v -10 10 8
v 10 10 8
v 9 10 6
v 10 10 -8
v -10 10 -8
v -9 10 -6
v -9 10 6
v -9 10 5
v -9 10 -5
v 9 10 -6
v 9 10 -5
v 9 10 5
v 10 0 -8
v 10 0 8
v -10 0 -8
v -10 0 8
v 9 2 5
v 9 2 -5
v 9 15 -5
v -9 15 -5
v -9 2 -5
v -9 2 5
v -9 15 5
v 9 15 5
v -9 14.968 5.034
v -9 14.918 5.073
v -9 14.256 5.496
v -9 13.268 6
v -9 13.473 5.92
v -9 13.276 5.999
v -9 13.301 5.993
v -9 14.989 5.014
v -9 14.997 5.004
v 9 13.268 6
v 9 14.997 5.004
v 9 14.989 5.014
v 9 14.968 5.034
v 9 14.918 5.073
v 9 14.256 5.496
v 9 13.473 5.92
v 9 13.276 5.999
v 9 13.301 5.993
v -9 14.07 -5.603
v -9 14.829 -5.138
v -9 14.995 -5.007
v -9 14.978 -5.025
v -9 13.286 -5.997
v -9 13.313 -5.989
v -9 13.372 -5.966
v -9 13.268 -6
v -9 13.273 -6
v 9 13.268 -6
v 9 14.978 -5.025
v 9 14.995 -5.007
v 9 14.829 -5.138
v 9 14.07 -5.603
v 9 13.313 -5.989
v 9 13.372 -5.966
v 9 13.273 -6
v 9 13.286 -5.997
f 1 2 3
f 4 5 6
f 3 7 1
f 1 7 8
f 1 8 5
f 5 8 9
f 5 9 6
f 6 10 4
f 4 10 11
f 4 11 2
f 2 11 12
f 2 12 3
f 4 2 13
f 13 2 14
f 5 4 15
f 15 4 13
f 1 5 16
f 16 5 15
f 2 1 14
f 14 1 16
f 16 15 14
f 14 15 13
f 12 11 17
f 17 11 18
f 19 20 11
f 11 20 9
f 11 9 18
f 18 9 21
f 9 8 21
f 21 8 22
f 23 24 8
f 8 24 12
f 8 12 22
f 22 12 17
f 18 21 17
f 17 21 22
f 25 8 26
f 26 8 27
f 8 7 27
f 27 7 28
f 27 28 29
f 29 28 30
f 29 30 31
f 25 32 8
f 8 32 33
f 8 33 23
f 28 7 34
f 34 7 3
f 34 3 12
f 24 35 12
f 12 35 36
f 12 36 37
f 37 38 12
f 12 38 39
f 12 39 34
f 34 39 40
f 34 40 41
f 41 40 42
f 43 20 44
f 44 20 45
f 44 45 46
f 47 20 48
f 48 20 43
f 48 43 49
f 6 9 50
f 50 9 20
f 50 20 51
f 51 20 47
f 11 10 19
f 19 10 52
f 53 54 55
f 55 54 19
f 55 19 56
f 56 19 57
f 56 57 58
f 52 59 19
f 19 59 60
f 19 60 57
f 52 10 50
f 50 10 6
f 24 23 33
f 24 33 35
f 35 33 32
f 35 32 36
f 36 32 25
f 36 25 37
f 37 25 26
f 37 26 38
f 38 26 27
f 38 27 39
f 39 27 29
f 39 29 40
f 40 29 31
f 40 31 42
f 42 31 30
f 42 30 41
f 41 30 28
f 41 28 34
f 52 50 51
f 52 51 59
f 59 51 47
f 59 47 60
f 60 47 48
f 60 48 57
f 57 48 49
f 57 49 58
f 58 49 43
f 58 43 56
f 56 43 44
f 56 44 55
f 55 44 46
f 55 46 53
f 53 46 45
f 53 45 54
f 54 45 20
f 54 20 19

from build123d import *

# Parameters (mm, degrees)
CROQUIS1_W              = 20
CROQUIS1_H              = 16
SALIENTE_EXTRUIR1_DEPTH = 2
CROQUIS2_W              = 20
CROQUIS2_H              = 16
CROQUIS2_W_2            = 18
CROQUIS2_H_2            = 10
SALIENTE_EXTRUIR2_DEPTH = 8
CROQUIS3_W              = 18
CROQUIS3_H              = 1
SALIENTE_EXTRUIR3_DEPTH = 5
REDONDEO1_START         = -9
REDONDEO1_DEPTH         = 18


with BuildPart() as part:
    # Croquis1 → Saliente-Extruir1 (new body)
    with BuildSketch(Plane(origin=(0, 0, 0), x_dir=(1, 0, 0), z_dir=(0, 1, 0))):
        Rectangle(CROQUIS1_W, CROQUIS1_H)
    extrude(amount=SALIENTE_EXTRUIR1_DEPTH)

    # Croquis2 → Saliente-Extruir2 (add)
    with BuildSketch(Plane(origin=(0, 2, 0), x_dir=(1, 0, 0), z_dir=(0, 1, 0))):
        Rectangle(CROQUIS2_W, CROQUIS2_H)
        Rectangle(CROQUIS2_W_2, CROQUIS2_H_2, mode=Mode.SUBTRACT)
    extrude(amount=SALIENTE_EXTRUIR2_DEPTH)

    # Croquis3 → Saliente-Extruir3 (add)
    with BuildSketch(Plane(origin=(0, 10, 0), x_dir=(1, 0, 0), z_dir=(0, 1, 0))):
        with Locations((0, -5.5)):
            Rectangle(CROQUIS3_W, CROQUIS3_H)
        with Locations((0, 5.5)):
            Rectangle(CROQUIS3_W, CROQUIS3_H)
    extrude(amount=SALIENTE_EXTRUIR3_DEPTH)

    # Redondeo1: read off the stored shape, not the designer's step
    # Redondeo1 outline → Redondeo1 (cut)
    with BuildSketch(Plane.YZ.offset(REDONDEO1_START)):
        with BuildLine():
            Line((15, 6), (13.267949192, 6))
            add(Edge.make_bspline(
                [(13.267949192, 6), (14.422649731, 6), (15, 5)],
                knots=[0, 0, 0, 1, 1, 1], degree=2, weights=[1, 0.111111111, 1]))
            Line((15, 5), (15, 6))
        make_face()
        with BuildLine():
            Line((15, -6), (15, -5))
            add(Edge.make_bspline(
                [(15, -5), (14.422649731, -6), (13.267949192, -6)],
                knots=[0, 0, 0, 1, 1, 1], degree=2, weights=[1, 0.111111111, 1]))
            Line((13.267949192, -6), (15, -6))
        make_face()
    extrude(amount=REDONDEO1_DEPTH, mode=Mode.SUBTRACT)


solid = part.part
